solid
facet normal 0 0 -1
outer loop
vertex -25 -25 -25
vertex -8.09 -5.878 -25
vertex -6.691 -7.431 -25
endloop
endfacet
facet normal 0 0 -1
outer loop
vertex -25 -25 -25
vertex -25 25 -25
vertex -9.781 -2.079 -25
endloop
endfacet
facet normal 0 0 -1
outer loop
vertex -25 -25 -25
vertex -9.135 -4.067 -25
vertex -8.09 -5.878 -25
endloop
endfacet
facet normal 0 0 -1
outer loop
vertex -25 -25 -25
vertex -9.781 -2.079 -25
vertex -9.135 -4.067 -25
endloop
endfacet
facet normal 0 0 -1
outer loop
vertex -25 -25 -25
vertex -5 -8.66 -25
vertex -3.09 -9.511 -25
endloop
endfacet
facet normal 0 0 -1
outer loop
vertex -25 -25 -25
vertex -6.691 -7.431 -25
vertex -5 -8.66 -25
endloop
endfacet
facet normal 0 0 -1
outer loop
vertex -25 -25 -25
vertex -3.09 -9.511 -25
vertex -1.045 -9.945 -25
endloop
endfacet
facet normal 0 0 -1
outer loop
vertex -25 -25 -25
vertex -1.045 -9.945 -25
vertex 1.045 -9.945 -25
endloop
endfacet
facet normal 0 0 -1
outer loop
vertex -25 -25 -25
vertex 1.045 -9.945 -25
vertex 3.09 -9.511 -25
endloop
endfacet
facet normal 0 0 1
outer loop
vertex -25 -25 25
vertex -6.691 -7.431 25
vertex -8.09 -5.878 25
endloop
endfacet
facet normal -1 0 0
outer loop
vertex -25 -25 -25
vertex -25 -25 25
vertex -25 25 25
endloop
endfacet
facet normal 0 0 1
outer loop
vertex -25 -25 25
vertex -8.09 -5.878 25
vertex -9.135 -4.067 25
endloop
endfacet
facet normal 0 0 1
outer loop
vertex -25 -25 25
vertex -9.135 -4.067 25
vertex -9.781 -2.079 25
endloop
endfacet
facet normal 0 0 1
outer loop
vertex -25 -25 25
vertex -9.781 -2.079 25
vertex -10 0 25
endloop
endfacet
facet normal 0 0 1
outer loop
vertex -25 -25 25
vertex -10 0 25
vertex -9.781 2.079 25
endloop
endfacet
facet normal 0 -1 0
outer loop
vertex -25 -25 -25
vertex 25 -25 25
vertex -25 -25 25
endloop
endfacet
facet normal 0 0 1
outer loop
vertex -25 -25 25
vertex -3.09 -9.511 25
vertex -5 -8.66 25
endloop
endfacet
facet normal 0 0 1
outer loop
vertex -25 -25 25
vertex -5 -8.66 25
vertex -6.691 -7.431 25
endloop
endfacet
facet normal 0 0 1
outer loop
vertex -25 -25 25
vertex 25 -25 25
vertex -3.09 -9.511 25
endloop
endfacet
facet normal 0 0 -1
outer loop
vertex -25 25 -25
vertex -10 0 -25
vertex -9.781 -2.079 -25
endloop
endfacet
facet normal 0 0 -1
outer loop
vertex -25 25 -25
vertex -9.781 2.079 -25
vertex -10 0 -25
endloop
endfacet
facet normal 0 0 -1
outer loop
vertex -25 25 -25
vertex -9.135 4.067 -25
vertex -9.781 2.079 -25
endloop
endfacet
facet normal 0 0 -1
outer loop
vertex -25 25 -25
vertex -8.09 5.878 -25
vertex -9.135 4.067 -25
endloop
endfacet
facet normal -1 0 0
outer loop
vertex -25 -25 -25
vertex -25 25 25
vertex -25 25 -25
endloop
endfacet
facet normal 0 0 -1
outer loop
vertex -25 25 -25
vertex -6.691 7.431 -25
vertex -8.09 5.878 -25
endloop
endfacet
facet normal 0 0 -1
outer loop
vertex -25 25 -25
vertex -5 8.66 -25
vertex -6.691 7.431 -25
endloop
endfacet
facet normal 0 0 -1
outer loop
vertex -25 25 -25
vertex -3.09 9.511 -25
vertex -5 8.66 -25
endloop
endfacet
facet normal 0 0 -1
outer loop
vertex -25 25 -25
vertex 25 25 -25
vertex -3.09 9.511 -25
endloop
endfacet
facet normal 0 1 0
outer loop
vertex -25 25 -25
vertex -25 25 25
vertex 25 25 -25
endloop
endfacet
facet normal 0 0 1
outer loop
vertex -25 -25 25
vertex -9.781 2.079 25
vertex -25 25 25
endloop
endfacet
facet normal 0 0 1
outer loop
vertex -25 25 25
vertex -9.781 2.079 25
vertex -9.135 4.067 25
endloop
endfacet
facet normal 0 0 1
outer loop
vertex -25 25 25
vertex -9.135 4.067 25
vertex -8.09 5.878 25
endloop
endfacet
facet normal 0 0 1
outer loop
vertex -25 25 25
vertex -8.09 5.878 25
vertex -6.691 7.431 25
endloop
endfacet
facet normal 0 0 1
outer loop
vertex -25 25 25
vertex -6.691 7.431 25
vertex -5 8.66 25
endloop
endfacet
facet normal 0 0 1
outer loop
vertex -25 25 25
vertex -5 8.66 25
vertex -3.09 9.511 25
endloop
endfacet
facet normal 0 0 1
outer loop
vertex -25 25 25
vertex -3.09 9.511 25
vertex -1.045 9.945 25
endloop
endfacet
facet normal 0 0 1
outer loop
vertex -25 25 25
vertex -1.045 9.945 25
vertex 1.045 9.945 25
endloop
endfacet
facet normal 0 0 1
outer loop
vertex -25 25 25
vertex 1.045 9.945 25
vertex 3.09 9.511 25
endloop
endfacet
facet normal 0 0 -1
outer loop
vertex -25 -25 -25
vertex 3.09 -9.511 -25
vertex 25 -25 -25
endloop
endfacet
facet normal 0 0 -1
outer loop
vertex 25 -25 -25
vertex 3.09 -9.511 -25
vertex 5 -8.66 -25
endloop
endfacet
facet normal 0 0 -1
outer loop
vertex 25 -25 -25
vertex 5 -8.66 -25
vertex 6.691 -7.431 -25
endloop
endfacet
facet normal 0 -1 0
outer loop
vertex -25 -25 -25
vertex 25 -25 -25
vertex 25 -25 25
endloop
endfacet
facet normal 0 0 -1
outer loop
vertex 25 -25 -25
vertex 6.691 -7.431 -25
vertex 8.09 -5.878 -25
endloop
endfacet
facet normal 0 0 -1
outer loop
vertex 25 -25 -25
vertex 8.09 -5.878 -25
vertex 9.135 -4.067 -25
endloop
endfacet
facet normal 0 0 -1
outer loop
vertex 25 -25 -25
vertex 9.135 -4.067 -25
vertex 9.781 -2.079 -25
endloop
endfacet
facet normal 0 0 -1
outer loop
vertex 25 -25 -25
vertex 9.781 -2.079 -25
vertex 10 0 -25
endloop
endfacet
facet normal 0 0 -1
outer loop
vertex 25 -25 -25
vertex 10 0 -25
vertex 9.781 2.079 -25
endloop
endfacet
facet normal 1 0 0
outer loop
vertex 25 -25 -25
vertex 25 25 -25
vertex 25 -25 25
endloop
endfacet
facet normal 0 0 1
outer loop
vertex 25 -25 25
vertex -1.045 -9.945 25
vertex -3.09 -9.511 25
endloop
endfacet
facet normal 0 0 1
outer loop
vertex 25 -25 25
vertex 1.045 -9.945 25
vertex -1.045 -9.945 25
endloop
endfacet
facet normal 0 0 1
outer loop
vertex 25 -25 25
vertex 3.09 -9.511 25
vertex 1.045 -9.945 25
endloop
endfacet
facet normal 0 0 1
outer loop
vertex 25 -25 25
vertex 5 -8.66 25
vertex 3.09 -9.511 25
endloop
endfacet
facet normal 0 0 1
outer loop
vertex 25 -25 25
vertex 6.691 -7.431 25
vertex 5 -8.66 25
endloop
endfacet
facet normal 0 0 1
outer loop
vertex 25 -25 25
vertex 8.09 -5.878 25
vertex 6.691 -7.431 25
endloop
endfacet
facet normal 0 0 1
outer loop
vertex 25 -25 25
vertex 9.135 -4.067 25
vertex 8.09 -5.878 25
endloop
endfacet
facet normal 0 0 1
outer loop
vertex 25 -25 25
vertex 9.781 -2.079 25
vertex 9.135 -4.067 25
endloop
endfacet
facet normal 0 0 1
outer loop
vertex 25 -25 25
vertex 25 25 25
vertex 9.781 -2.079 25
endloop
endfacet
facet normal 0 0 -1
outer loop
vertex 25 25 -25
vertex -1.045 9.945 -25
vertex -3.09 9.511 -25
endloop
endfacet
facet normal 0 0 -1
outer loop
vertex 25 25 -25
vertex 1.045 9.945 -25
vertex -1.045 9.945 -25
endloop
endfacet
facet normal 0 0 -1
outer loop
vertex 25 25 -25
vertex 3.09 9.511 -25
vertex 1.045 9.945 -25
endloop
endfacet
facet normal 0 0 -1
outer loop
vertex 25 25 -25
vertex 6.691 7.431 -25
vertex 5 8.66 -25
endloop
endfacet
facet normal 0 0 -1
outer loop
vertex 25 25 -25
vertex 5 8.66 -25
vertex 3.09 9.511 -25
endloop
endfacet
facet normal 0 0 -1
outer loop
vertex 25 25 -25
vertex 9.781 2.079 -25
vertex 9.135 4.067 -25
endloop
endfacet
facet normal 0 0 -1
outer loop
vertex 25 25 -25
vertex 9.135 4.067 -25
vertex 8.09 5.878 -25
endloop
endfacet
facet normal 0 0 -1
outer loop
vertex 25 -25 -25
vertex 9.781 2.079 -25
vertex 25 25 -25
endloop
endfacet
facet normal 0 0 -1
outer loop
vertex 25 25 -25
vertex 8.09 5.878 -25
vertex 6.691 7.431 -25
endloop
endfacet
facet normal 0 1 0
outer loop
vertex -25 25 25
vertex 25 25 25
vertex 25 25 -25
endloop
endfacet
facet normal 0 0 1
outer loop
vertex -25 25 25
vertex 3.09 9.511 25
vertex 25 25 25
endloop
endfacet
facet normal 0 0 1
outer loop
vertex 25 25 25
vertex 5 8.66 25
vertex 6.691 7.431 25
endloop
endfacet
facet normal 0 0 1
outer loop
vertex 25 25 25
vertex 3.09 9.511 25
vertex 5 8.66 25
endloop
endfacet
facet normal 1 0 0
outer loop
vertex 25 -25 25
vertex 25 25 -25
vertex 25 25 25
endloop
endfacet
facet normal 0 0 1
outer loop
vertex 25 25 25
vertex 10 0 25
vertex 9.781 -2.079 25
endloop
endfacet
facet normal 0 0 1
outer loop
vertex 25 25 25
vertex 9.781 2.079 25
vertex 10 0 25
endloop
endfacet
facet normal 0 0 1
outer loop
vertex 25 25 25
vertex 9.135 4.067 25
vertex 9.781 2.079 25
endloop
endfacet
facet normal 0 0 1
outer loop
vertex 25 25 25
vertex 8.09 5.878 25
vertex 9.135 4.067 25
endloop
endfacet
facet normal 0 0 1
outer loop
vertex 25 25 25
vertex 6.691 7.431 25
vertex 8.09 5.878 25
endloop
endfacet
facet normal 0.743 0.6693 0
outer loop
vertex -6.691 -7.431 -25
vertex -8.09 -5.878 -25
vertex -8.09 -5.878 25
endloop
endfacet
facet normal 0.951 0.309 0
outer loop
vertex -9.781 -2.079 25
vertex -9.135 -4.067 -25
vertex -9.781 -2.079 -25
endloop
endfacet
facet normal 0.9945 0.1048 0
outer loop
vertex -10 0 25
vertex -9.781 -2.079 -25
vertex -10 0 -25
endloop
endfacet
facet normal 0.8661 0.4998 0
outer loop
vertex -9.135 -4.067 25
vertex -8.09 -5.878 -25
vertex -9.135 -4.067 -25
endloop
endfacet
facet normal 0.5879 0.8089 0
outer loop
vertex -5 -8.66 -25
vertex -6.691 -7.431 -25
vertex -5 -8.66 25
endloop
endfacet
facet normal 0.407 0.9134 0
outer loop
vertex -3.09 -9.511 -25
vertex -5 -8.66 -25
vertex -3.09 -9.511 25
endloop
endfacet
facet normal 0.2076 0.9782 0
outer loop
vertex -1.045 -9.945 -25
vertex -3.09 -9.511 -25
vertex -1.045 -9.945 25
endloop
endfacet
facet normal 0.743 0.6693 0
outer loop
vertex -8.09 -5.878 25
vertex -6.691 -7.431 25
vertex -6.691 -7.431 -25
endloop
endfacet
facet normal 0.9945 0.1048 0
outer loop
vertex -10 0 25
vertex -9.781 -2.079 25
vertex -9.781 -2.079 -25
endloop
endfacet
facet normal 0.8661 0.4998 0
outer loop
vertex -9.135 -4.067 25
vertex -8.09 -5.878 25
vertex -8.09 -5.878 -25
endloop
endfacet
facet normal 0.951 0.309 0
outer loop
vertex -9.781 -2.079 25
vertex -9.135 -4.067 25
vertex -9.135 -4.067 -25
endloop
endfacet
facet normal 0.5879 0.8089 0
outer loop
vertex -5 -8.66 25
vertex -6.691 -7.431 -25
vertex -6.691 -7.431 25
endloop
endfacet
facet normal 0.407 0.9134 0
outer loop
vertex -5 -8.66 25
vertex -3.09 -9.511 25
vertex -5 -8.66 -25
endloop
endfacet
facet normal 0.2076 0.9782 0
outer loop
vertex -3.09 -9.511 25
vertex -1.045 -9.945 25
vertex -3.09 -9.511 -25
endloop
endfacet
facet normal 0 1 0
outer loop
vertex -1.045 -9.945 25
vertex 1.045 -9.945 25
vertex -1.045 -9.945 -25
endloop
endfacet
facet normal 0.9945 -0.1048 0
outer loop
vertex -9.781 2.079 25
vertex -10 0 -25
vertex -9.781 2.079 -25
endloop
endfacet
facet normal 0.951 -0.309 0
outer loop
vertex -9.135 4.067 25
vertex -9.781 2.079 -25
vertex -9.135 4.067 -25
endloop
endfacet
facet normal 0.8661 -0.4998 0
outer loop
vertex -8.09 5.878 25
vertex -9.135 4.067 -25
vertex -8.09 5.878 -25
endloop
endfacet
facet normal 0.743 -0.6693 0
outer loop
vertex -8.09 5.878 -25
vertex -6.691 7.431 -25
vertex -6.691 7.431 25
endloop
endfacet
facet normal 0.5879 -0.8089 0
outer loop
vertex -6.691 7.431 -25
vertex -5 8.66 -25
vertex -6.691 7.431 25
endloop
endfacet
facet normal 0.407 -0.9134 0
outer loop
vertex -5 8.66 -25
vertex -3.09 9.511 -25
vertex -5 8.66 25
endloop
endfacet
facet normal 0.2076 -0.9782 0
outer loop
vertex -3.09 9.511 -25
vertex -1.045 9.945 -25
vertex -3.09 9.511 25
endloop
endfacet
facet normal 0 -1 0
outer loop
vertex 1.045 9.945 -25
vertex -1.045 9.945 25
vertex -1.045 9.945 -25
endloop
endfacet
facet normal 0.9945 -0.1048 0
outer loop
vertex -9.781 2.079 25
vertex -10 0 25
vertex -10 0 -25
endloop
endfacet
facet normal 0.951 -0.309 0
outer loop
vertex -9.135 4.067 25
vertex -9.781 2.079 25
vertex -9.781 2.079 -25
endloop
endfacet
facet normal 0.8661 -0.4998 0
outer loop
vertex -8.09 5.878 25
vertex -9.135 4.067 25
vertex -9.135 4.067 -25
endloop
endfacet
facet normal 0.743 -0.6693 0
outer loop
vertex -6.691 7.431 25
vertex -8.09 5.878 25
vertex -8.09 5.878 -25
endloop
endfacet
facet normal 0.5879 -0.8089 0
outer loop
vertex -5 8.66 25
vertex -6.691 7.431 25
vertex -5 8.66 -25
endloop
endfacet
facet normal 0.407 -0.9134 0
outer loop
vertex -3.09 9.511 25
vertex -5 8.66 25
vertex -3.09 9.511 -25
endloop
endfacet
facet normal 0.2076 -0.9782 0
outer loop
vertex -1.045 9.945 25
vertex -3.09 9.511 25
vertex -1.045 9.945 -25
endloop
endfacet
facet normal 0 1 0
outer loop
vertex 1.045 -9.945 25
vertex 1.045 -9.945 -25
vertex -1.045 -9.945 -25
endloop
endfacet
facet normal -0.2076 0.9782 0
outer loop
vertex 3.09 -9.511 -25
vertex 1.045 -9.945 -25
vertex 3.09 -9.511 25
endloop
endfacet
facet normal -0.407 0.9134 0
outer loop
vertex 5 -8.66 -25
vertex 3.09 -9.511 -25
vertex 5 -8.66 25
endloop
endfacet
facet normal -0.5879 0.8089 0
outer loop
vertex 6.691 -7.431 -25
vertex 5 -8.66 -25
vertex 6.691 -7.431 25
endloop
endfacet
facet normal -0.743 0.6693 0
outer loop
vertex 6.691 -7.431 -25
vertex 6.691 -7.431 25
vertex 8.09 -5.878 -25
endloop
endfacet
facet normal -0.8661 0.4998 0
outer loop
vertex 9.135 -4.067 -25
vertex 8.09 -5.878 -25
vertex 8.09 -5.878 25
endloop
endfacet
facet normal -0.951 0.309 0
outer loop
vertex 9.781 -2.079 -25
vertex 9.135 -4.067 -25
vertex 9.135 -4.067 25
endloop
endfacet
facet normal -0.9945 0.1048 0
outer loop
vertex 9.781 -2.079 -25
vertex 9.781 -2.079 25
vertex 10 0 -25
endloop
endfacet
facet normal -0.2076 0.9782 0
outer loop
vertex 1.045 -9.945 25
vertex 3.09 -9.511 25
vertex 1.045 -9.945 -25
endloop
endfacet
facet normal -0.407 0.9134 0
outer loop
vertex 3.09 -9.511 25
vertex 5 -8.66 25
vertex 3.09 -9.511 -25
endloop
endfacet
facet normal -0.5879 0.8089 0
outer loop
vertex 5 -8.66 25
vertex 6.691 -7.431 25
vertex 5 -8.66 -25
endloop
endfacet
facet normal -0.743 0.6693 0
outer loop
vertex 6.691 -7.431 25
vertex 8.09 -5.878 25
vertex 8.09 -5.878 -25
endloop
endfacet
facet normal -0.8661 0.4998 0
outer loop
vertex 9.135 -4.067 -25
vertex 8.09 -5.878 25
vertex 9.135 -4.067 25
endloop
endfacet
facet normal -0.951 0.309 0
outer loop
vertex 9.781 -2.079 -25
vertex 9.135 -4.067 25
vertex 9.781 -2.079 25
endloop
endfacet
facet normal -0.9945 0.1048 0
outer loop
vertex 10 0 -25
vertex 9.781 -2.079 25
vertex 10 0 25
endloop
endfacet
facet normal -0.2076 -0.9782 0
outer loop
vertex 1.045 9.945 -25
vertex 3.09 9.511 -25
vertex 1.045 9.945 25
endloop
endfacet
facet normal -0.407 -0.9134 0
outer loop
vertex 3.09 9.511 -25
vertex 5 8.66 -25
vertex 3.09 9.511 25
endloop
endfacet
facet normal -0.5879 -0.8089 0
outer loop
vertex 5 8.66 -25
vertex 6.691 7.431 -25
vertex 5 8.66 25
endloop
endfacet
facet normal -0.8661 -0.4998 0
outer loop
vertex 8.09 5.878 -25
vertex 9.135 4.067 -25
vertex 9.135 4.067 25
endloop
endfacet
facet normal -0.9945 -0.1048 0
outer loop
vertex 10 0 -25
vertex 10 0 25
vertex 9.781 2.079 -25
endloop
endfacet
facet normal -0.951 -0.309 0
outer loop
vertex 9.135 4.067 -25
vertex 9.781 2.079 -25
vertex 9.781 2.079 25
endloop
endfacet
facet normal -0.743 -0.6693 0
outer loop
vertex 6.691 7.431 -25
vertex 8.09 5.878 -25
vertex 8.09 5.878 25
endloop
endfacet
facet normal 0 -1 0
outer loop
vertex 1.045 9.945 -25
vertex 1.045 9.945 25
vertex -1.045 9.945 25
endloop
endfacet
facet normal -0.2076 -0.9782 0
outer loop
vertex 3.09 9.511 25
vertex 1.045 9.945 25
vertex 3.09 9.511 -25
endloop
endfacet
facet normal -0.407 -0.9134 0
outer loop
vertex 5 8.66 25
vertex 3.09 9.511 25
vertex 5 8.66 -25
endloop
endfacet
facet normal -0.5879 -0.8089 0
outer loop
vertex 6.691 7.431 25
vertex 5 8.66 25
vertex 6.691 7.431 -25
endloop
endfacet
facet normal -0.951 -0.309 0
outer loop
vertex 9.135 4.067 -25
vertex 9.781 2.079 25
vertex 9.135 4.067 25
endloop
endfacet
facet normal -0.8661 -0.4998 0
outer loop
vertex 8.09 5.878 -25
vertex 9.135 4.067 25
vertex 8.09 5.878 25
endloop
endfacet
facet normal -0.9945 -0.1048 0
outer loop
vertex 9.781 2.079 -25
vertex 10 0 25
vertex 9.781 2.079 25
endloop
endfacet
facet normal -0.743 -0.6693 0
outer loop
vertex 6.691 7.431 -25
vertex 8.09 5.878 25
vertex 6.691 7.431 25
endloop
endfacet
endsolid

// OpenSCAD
difference() {
    cube([50, 50, 50], center = true);
    cylinder(h = 60, d = 20, center = true);
}
